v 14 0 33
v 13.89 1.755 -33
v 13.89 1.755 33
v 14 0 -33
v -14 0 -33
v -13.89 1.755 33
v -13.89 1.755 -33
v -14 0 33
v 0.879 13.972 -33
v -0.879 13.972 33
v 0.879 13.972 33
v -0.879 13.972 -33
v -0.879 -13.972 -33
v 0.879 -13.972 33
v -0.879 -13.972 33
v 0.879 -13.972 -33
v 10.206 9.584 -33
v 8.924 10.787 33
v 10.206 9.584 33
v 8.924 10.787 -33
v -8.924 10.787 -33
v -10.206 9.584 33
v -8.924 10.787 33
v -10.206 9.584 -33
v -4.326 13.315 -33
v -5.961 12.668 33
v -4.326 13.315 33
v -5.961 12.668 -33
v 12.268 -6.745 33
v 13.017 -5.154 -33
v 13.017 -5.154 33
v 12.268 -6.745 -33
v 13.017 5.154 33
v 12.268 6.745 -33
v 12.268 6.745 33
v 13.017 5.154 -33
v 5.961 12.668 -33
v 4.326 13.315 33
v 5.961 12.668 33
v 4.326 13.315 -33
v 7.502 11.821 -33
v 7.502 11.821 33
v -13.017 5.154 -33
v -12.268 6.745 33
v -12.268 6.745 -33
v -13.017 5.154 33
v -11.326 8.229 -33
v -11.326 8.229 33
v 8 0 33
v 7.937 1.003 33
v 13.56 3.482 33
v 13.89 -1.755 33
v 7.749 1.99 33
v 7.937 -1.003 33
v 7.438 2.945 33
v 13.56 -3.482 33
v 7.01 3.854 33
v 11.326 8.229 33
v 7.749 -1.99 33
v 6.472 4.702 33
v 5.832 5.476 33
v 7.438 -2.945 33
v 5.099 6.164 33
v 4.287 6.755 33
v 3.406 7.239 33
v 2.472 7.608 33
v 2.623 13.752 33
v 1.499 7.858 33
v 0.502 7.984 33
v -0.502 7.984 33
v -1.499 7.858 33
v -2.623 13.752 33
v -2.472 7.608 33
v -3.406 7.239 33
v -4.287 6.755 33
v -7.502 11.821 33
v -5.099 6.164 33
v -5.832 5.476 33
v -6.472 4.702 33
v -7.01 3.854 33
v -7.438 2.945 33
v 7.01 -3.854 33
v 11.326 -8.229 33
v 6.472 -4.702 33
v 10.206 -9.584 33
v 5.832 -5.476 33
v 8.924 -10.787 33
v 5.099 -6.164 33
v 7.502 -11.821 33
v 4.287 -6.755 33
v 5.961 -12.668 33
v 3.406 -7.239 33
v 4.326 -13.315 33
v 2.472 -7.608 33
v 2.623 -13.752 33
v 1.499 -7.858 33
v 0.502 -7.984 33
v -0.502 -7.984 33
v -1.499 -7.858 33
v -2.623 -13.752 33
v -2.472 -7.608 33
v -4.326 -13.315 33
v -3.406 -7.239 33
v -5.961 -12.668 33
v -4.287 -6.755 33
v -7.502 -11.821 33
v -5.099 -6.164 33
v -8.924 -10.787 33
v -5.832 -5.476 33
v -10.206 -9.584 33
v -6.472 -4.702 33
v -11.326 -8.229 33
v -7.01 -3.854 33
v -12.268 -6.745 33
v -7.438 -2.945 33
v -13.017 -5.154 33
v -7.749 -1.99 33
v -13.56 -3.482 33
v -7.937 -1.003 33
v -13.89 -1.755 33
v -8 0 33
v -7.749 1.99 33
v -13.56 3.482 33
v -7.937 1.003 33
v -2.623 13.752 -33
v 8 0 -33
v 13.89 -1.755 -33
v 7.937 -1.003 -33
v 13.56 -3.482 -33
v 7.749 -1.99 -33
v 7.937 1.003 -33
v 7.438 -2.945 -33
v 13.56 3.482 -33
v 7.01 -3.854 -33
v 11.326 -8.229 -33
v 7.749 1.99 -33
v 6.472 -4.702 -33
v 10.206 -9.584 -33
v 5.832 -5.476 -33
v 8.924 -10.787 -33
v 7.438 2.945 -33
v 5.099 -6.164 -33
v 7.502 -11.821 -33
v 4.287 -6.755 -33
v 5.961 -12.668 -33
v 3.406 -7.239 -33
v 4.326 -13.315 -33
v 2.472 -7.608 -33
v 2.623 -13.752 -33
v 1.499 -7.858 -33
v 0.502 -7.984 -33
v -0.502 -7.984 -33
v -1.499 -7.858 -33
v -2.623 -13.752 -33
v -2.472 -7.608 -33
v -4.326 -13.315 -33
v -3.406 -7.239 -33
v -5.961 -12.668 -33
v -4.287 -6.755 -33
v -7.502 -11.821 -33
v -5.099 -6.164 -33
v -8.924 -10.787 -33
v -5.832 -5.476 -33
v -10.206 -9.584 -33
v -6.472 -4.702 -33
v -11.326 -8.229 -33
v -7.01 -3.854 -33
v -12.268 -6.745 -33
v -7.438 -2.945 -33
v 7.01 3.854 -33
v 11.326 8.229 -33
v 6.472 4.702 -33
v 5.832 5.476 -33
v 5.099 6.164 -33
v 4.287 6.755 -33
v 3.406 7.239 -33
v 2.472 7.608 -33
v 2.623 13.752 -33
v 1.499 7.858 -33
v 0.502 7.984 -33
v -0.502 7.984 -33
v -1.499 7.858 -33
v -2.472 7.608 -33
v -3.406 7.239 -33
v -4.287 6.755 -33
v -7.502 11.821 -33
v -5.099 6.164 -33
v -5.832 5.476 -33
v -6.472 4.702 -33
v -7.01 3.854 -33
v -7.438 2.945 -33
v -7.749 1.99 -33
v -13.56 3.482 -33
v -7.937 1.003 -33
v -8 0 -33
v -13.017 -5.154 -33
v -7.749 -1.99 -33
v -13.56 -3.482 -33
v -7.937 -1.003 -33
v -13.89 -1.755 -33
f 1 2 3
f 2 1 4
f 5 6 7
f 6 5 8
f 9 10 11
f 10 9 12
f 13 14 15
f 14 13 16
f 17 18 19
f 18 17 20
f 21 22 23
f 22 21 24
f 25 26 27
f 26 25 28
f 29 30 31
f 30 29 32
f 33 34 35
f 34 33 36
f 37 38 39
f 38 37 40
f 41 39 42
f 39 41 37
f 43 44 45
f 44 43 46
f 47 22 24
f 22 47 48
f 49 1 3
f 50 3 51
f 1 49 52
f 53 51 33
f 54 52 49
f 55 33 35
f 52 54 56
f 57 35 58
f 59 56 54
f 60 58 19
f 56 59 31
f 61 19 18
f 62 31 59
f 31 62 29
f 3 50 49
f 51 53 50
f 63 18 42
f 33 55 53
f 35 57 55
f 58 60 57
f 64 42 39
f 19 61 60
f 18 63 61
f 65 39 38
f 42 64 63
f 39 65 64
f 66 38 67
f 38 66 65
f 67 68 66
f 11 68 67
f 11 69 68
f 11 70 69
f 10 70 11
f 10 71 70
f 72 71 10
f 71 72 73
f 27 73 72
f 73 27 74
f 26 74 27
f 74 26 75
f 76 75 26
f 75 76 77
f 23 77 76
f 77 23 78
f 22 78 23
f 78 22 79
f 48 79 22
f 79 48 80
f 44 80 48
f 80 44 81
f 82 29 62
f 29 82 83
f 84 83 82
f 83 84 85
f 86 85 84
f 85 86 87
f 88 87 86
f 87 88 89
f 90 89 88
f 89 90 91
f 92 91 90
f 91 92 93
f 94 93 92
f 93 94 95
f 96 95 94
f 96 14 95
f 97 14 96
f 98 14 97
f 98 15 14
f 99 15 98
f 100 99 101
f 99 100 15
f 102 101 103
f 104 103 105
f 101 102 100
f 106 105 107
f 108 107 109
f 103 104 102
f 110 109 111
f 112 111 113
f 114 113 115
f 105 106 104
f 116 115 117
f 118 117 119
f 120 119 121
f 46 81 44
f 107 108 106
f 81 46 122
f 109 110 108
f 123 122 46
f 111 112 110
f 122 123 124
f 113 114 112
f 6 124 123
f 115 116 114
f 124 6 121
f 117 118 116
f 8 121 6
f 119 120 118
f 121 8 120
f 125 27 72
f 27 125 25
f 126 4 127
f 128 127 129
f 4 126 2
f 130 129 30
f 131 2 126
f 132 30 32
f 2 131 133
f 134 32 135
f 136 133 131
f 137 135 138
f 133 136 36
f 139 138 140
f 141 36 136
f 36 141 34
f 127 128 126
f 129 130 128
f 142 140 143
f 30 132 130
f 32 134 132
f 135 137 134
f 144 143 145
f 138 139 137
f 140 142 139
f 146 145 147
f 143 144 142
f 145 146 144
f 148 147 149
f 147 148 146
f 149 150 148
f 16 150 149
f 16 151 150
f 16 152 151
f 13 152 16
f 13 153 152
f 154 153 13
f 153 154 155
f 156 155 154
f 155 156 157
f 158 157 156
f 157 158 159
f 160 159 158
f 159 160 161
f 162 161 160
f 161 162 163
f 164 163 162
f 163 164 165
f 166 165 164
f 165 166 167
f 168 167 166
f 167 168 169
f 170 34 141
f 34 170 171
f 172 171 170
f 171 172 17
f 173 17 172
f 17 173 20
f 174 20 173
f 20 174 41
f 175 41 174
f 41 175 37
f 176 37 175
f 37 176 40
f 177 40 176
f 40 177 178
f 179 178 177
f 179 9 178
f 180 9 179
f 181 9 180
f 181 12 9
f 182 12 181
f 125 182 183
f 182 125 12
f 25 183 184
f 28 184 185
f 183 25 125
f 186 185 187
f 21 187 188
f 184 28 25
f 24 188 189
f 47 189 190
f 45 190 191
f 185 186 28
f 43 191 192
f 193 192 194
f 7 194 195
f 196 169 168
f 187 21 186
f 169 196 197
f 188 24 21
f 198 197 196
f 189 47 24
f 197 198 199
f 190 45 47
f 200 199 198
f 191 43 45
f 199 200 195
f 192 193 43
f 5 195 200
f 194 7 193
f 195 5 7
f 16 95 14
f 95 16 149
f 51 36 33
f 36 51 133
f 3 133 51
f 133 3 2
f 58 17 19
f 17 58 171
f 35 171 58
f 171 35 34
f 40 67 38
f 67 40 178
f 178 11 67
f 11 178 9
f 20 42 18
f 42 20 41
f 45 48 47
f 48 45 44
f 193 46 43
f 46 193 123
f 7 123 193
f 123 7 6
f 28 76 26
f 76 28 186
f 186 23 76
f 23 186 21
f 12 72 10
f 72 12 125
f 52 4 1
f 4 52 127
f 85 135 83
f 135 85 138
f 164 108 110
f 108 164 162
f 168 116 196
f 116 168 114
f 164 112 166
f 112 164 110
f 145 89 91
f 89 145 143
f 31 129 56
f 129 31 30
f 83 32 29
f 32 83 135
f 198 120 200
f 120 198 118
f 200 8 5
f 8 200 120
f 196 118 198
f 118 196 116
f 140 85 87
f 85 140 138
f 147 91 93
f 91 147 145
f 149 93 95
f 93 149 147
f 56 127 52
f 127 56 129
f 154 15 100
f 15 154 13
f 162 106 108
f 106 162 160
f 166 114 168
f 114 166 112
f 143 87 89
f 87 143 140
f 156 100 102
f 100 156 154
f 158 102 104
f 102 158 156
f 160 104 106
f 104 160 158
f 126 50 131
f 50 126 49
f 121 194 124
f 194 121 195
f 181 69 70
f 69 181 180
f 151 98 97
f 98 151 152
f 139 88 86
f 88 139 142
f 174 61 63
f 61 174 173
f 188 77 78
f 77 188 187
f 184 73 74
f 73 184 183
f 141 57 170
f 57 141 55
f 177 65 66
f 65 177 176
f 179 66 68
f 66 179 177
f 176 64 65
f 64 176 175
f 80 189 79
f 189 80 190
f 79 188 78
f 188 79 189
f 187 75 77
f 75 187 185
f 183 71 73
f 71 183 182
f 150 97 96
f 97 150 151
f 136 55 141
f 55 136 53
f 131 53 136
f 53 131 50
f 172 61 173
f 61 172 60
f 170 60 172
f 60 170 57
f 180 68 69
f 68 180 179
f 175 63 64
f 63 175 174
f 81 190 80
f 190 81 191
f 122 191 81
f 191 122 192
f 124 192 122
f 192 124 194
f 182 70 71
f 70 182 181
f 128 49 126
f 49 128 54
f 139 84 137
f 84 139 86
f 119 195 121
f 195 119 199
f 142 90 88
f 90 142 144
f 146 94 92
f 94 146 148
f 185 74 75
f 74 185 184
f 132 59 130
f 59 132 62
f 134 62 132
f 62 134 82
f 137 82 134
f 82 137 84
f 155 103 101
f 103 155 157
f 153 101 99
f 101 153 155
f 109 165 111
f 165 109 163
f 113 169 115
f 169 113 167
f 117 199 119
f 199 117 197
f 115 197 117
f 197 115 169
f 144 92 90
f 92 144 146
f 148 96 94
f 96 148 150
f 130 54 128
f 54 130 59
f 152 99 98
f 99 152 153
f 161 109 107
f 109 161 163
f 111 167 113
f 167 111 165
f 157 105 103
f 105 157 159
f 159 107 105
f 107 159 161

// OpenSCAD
$fn = 50;


difference() {
	union() {
		translate(v = [0, 0, -33.0000000000]) {
			cylinder(h = 66, r = 14.0000000000);
		}
	}
	union() {
		translate(v = [0, 0, -100.0000000000]) {
			cylinder(h = 200, r = 8);
		}
	}
}
